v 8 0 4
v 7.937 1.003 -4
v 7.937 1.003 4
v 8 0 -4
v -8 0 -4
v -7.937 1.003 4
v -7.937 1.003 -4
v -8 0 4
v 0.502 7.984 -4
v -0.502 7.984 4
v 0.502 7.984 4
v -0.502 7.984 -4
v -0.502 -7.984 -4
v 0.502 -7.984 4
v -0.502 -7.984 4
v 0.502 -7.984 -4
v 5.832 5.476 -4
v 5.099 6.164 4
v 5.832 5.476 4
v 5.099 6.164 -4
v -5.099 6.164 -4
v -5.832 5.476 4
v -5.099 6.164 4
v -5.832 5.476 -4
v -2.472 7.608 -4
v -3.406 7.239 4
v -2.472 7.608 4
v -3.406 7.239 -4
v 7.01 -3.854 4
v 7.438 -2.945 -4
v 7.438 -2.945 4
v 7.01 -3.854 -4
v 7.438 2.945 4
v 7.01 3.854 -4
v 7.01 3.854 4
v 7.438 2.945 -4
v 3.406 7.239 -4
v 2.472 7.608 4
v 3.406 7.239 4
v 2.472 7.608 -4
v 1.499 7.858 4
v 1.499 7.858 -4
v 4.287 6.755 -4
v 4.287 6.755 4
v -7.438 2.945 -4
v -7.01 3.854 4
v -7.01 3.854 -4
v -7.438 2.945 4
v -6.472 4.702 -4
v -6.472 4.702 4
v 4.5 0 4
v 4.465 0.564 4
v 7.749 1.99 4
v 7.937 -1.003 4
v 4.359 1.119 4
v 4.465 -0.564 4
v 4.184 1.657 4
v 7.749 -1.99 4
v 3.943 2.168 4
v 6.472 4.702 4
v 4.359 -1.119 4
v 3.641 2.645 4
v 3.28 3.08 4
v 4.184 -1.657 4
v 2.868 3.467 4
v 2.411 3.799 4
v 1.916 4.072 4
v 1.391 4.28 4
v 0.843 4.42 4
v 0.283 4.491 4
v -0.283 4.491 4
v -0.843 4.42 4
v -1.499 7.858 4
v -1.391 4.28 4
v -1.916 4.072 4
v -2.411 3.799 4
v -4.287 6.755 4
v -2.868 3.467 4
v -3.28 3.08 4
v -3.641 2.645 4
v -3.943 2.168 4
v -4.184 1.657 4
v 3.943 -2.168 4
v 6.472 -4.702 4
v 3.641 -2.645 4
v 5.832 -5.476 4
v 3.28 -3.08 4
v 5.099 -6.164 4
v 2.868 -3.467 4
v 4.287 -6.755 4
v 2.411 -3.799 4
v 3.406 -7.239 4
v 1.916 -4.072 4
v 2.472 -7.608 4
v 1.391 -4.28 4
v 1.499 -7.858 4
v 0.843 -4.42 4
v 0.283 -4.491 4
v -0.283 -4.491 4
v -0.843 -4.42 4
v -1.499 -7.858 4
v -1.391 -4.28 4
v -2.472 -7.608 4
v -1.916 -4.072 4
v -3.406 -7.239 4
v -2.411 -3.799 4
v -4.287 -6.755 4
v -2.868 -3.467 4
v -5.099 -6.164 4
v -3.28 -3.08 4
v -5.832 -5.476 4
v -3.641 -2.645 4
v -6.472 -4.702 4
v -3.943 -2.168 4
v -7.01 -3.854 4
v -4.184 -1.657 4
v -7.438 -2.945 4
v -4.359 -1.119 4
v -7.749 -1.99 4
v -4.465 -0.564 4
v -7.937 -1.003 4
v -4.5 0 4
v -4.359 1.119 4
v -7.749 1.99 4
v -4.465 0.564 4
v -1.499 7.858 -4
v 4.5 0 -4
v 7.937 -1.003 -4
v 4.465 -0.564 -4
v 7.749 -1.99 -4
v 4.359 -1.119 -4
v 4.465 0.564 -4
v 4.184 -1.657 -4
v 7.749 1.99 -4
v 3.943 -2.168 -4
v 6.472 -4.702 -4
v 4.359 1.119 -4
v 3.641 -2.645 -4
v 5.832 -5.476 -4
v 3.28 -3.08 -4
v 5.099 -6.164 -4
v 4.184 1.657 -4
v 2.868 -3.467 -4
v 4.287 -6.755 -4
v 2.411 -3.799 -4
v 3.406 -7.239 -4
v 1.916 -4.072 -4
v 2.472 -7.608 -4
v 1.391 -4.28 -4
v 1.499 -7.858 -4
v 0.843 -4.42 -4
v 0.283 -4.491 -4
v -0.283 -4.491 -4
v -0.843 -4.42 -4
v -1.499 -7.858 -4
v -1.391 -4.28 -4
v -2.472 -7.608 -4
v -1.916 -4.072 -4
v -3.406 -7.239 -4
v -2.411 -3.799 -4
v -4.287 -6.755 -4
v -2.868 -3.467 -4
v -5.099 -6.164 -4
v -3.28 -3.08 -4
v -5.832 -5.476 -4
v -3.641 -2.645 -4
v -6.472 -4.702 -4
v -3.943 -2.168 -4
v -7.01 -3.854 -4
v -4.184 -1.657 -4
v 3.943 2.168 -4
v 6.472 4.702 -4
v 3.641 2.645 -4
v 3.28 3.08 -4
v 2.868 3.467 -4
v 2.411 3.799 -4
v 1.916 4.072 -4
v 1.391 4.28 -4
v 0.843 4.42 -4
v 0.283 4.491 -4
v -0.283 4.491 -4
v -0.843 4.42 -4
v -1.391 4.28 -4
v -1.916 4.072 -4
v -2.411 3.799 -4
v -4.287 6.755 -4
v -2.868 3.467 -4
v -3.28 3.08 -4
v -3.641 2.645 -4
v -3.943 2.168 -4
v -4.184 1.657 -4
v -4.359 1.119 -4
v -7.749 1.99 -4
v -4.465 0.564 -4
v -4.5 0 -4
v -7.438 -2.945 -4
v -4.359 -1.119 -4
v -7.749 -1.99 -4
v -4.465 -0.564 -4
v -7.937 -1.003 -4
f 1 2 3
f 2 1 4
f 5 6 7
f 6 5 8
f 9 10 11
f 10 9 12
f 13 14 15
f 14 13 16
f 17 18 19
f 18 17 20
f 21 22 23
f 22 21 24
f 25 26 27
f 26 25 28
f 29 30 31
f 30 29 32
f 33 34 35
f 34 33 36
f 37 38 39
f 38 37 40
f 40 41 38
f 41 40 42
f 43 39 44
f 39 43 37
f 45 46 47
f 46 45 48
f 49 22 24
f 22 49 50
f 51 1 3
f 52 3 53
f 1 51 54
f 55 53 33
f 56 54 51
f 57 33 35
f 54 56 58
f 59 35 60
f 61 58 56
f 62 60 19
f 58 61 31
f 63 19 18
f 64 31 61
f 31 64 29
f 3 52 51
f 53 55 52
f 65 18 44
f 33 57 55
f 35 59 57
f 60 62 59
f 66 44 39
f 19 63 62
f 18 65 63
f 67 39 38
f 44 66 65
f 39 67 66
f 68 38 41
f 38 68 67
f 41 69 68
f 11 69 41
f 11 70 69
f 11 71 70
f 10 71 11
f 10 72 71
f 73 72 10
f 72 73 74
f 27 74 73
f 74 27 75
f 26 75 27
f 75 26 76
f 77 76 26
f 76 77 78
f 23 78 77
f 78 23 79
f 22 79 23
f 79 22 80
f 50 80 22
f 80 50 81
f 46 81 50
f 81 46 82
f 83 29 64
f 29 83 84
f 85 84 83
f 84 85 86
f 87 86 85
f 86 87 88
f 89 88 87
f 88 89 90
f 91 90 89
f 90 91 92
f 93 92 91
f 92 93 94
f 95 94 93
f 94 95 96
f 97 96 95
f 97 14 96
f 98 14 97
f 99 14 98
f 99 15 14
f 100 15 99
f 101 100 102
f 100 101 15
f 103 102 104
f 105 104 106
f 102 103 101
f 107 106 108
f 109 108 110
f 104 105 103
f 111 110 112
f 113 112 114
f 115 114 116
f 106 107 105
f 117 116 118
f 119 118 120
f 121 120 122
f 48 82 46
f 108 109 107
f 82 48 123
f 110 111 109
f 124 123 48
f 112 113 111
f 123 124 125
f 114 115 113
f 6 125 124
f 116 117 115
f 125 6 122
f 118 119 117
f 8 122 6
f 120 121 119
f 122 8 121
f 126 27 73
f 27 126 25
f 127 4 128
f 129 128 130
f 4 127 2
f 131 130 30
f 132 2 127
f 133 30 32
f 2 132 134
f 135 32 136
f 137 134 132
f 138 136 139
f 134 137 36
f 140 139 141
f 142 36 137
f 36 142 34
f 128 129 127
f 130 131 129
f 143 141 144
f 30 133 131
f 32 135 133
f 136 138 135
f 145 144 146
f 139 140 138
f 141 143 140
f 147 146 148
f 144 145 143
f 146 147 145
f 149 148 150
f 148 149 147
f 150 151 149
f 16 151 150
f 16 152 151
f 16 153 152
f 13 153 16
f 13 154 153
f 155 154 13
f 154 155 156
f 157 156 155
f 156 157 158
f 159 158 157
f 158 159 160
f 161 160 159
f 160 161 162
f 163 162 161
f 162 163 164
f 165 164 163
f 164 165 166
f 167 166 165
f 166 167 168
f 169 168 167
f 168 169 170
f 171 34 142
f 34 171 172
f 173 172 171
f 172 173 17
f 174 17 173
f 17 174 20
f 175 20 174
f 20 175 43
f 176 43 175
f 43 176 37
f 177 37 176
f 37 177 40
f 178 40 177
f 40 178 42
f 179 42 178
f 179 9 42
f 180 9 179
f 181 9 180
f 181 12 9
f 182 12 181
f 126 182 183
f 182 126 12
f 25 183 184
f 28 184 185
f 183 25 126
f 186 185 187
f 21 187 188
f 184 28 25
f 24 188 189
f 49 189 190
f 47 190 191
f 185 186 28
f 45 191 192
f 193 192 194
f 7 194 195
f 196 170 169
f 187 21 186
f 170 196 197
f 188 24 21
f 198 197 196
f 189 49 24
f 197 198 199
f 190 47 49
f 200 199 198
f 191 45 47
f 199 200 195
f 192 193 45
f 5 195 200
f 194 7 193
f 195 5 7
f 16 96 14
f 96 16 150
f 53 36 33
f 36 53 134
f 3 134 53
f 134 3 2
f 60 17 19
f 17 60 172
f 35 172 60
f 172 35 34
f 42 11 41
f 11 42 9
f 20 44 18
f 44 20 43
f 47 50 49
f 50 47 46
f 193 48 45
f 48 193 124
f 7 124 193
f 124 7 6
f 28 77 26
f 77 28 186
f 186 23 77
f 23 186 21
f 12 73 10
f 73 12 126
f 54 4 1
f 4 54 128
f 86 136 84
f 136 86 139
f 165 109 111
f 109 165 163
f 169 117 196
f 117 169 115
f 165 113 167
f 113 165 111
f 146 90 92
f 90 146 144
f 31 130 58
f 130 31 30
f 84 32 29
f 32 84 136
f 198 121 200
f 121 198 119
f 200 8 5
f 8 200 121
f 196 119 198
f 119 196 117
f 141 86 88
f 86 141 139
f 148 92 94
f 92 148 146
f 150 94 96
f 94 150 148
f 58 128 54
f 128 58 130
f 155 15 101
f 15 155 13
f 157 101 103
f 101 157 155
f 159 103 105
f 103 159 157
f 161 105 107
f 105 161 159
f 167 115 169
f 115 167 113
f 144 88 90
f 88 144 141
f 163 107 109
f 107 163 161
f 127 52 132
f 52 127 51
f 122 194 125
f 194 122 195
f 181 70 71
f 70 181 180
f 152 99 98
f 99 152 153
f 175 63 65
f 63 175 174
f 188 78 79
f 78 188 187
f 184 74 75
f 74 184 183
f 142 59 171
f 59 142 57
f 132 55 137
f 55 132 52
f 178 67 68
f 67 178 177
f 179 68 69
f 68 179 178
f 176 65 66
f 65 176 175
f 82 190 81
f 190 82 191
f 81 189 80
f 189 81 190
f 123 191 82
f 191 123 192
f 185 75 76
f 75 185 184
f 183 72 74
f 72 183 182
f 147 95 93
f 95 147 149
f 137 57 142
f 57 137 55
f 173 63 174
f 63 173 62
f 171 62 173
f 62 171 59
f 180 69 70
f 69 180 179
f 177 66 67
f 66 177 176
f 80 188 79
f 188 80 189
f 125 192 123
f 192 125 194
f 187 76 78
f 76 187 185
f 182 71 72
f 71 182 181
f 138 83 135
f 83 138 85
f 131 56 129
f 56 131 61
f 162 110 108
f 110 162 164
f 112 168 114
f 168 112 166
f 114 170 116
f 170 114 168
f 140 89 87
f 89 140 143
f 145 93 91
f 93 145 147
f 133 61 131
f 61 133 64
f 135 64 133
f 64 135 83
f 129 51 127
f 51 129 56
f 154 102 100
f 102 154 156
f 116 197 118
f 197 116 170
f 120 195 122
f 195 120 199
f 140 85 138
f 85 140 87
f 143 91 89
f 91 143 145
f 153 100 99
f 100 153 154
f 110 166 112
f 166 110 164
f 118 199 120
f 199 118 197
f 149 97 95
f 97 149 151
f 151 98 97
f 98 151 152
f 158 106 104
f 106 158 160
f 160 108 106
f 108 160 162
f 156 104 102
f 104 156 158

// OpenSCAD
$fn = 50;


difference() {
	union() {
		translate(v = [0, 0, -4.0000000000]) {
			cylinder(h = 8, r = 8.0000000000);
		}
	}
	union() {
		translate(v = [0, 0, -100.0000000000]) {
			cylinder(h = 200, r = 4.5000000000);
		}
	}
}
